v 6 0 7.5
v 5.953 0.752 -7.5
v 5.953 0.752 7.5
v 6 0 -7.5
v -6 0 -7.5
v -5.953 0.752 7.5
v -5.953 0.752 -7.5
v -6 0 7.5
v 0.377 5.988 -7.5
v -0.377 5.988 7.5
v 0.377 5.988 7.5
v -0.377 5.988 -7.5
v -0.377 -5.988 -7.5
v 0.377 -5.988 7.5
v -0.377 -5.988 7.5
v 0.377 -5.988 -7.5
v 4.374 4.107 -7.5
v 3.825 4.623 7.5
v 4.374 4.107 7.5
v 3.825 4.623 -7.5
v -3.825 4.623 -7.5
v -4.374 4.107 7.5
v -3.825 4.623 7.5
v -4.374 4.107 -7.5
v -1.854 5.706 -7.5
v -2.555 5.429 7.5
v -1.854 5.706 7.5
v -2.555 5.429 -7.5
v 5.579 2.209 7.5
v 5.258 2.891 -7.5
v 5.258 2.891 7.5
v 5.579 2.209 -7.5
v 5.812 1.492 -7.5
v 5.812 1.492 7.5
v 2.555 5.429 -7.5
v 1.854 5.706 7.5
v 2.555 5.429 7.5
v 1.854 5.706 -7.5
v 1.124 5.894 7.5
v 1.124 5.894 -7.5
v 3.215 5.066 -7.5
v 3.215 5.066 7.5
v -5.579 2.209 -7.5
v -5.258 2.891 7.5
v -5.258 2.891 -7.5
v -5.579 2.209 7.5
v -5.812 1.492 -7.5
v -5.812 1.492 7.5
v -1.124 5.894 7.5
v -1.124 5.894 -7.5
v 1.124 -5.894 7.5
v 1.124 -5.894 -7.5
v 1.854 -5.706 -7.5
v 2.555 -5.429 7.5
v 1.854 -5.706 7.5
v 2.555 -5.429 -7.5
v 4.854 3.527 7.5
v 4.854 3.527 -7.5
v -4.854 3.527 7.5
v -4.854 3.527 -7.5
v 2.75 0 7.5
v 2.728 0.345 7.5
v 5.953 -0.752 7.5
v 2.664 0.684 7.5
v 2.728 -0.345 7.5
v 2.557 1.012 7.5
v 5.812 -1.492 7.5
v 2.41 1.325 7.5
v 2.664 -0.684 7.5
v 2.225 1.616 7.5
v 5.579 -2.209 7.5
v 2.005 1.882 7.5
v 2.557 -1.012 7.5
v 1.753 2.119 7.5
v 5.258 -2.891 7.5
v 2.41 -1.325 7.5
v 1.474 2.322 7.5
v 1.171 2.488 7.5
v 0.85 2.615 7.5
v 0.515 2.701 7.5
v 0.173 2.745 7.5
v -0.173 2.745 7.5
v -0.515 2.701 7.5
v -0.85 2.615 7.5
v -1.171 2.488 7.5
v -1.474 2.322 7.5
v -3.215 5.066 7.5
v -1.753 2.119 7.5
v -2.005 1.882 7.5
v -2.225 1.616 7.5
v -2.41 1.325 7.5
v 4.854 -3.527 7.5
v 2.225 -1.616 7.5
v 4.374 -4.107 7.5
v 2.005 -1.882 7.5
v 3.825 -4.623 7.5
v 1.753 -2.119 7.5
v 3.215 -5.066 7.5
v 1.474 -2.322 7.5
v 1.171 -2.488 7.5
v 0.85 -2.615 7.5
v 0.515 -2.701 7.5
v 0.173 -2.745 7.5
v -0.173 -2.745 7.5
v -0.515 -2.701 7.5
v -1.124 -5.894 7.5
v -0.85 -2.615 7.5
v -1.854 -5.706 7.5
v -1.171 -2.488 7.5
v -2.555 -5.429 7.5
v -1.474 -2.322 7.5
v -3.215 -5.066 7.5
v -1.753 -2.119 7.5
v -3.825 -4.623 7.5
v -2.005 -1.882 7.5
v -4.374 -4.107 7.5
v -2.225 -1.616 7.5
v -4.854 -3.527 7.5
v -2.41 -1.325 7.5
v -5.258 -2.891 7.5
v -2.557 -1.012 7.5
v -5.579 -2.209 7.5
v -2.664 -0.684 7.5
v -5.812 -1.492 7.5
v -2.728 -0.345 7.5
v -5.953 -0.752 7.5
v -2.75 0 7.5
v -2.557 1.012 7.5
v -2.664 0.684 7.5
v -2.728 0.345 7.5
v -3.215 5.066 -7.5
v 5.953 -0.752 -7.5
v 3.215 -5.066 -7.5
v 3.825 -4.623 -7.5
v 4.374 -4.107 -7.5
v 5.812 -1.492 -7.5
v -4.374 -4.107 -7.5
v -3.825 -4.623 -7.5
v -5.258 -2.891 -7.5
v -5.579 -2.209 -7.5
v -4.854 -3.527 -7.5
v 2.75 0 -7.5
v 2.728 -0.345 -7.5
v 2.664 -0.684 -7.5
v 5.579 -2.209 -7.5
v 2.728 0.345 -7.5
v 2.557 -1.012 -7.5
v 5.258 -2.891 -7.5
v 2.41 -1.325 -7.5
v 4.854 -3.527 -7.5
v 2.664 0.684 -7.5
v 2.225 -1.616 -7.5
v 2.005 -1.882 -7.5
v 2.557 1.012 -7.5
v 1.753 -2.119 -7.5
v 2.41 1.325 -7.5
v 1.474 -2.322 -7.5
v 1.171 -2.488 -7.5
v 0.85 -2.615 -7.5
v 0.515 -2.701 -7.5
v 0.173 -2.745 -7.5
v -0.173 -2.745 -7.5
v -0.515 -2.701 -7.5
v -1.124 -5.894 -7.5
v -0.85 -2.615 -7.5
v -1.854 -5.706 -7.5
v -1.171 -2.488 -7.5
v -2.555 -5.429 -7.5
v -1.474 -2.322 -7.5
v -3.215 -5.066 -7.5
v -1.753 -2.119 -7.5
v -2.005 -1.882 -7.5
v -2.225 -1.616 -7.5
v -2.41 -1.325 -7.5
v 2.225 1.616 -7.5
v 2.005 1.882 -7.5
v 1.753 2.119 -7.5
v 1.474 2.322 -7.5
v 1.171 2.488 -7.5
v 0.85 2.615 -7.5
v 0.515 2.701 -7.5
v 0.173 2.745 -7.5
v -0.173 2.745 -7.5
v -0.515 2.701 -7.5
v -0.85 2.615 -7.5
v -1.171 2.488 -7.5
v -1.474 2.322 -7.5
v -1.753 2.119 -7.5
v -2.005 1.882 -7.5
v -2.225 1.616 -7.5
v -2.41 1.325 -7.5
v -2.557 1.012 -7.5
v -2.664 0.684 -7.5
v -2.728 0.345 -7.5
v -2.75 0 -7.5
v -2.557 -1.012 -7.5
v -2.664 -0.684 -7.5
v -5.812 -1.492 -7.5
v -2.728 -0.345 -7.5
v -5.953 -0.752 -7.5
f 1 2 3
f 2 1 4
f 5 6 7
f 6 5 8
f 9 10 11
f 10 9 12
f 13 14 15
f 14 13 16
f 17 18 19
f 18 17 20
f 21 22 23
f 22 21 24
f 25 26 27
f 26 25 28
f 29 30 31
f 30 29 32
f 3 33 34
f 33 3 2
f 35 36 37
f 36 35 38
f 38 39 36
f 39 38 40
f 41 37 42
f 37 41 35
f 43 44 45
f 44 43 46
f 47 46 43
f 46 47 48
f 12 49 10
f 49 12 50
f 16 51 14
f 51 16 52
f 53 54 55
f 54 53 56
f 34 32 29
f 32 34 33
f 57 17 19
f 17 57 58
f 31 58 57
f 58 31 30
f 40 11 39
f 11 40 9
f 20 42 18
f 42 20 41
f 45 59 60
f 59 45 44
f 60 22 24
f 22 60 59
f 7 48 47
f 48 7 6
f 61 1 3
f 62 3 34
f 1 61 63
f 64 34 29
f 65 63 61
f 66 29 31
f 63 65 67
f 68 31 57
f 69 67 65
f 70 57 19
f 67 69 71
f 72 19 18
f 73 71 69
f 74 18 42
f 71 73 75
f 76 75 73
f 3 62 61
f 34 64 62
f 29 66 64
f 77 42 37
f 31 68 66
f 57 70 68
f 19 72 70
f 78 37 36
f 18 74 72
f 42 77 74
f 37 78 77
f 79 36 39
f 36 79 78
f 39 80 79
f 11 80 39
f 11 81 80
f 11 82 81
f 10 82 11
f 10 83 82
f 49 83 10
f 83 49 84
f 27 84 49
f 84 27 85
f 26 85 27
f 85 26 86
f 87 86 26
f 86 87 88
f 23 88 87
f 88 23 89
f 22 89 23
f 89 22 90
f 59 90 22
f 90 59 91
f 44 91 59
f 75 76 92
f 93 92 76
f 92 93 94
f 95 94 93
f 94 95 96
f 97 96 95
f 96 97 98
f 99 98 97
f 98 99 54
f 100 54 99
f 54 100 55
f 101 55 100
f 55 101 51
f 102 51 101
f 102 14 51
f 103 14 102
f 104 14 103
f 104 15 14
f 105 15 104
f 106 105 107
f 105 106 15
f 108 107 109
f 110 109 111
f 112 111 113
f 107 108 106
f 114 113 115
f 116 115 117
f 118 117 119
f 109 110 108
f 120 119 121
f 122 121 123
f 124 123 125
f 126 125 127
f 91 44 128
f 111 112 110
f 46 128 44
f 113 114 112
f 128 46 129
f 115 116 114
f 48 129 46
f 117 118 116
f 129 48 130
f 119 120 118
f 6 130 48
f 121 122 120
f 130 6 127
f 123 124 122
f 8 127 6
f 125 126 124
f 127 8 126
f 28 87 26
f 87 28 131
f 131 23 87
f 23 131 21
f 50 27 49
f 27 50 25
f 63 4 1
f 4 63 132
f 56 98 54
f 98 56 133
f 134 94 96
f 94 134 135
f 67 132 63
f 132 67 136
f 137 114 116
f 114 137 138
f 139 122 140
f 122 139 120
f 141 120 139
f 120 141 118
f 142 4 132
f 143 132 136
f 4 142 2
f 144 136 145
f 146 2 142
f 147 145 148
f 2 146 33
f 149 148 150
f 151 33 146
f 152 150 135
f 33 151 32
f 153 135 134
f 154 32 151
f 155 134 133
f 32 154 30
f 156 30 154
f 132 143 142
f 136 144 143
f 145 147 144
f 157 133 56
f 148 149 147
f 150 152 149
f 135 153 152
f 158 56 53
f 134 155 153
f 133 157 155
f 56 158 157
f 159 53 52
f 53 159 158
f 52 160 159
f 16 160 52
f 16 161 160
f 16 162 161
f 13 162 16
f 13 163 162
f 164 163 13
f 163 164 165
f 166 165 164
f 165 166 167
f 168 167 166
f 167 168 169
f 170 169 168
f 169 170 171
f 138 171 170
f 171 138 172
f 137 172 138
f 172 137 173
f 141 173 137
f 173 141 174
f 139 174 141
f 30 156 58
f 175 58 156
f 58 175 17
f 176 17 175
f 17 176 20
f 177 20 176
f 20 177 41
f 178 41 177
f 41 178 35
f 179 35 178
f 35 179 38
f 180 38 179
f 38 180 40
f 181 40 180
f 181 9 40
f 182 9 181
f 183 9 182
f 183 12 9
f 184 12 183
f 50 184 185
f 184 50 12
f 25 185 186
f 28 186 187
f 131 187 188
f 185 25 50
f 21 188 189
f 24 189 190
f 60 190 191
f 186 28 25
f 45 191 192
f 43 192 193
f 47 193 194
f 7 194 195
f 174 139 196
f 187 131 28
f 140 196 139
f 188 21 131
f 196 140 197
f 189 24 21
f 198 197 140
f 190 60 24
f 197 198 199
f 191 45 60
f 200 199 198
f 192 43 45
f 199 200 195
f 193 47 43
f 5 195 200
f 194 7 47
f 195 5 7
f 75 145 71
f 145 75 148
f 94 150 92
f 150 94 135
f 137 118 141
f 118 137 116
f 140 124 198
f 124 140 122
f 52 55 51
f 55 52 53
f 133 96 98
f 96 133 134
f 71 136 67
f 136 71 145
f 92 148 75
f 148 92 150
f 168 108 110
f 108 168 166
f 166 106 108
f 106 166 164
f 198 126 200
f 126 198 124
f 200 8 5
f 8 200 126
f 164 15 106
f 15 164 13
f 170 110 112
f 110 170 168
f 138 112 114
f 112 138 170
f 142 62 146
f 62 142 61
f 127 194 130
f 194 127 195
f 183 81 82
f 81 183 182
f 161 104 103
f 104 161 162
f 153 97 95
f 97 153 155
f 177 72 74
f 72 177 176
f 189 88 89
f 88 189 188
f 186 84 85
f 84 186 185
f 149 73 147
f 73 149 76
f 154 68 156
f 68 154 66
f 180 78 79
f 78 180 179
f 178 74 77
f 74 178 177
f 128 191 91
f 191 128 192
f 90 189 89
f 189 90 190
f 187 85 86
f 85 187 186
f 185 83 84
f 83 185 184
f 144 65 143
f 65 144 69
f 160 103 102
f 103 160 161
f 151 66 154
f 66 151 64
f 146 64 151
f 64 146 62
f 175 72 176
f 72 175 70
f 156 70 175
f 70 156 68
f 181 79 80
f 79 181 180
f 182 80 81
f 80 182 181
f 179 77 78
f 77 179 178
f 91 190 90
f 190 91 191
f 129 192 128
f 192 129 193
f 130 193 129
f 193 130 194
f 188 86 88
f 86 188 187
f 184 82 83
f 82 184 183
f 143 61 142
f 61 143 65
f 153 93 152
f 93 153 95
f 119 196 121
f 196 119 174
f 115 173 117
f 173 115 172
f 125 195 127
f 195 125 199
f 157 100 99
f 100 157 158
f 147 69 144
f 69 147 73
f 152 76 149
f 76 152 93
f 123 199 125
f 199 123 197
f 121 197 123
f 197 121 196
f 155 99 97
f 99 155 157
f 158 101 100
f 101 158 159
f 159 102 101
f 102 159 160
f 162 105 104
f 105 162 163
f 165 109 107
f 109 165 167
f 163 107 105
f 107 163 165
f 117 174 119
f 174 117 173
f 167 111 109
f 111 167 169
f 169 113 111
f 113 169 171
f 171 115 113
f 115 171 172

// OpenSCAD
$fn = 50;


difference() {
	union() {
		translate(v = [0, 0, -7.5000000000]) {
			cylinder(h = 15, r = 6.0000000000);
		}
	}
	union() {
		translate(v = [0, 0, -100.0000000000]) {
			cylinder(h = 200, r = 2.7500000000);
		}
	}
}
